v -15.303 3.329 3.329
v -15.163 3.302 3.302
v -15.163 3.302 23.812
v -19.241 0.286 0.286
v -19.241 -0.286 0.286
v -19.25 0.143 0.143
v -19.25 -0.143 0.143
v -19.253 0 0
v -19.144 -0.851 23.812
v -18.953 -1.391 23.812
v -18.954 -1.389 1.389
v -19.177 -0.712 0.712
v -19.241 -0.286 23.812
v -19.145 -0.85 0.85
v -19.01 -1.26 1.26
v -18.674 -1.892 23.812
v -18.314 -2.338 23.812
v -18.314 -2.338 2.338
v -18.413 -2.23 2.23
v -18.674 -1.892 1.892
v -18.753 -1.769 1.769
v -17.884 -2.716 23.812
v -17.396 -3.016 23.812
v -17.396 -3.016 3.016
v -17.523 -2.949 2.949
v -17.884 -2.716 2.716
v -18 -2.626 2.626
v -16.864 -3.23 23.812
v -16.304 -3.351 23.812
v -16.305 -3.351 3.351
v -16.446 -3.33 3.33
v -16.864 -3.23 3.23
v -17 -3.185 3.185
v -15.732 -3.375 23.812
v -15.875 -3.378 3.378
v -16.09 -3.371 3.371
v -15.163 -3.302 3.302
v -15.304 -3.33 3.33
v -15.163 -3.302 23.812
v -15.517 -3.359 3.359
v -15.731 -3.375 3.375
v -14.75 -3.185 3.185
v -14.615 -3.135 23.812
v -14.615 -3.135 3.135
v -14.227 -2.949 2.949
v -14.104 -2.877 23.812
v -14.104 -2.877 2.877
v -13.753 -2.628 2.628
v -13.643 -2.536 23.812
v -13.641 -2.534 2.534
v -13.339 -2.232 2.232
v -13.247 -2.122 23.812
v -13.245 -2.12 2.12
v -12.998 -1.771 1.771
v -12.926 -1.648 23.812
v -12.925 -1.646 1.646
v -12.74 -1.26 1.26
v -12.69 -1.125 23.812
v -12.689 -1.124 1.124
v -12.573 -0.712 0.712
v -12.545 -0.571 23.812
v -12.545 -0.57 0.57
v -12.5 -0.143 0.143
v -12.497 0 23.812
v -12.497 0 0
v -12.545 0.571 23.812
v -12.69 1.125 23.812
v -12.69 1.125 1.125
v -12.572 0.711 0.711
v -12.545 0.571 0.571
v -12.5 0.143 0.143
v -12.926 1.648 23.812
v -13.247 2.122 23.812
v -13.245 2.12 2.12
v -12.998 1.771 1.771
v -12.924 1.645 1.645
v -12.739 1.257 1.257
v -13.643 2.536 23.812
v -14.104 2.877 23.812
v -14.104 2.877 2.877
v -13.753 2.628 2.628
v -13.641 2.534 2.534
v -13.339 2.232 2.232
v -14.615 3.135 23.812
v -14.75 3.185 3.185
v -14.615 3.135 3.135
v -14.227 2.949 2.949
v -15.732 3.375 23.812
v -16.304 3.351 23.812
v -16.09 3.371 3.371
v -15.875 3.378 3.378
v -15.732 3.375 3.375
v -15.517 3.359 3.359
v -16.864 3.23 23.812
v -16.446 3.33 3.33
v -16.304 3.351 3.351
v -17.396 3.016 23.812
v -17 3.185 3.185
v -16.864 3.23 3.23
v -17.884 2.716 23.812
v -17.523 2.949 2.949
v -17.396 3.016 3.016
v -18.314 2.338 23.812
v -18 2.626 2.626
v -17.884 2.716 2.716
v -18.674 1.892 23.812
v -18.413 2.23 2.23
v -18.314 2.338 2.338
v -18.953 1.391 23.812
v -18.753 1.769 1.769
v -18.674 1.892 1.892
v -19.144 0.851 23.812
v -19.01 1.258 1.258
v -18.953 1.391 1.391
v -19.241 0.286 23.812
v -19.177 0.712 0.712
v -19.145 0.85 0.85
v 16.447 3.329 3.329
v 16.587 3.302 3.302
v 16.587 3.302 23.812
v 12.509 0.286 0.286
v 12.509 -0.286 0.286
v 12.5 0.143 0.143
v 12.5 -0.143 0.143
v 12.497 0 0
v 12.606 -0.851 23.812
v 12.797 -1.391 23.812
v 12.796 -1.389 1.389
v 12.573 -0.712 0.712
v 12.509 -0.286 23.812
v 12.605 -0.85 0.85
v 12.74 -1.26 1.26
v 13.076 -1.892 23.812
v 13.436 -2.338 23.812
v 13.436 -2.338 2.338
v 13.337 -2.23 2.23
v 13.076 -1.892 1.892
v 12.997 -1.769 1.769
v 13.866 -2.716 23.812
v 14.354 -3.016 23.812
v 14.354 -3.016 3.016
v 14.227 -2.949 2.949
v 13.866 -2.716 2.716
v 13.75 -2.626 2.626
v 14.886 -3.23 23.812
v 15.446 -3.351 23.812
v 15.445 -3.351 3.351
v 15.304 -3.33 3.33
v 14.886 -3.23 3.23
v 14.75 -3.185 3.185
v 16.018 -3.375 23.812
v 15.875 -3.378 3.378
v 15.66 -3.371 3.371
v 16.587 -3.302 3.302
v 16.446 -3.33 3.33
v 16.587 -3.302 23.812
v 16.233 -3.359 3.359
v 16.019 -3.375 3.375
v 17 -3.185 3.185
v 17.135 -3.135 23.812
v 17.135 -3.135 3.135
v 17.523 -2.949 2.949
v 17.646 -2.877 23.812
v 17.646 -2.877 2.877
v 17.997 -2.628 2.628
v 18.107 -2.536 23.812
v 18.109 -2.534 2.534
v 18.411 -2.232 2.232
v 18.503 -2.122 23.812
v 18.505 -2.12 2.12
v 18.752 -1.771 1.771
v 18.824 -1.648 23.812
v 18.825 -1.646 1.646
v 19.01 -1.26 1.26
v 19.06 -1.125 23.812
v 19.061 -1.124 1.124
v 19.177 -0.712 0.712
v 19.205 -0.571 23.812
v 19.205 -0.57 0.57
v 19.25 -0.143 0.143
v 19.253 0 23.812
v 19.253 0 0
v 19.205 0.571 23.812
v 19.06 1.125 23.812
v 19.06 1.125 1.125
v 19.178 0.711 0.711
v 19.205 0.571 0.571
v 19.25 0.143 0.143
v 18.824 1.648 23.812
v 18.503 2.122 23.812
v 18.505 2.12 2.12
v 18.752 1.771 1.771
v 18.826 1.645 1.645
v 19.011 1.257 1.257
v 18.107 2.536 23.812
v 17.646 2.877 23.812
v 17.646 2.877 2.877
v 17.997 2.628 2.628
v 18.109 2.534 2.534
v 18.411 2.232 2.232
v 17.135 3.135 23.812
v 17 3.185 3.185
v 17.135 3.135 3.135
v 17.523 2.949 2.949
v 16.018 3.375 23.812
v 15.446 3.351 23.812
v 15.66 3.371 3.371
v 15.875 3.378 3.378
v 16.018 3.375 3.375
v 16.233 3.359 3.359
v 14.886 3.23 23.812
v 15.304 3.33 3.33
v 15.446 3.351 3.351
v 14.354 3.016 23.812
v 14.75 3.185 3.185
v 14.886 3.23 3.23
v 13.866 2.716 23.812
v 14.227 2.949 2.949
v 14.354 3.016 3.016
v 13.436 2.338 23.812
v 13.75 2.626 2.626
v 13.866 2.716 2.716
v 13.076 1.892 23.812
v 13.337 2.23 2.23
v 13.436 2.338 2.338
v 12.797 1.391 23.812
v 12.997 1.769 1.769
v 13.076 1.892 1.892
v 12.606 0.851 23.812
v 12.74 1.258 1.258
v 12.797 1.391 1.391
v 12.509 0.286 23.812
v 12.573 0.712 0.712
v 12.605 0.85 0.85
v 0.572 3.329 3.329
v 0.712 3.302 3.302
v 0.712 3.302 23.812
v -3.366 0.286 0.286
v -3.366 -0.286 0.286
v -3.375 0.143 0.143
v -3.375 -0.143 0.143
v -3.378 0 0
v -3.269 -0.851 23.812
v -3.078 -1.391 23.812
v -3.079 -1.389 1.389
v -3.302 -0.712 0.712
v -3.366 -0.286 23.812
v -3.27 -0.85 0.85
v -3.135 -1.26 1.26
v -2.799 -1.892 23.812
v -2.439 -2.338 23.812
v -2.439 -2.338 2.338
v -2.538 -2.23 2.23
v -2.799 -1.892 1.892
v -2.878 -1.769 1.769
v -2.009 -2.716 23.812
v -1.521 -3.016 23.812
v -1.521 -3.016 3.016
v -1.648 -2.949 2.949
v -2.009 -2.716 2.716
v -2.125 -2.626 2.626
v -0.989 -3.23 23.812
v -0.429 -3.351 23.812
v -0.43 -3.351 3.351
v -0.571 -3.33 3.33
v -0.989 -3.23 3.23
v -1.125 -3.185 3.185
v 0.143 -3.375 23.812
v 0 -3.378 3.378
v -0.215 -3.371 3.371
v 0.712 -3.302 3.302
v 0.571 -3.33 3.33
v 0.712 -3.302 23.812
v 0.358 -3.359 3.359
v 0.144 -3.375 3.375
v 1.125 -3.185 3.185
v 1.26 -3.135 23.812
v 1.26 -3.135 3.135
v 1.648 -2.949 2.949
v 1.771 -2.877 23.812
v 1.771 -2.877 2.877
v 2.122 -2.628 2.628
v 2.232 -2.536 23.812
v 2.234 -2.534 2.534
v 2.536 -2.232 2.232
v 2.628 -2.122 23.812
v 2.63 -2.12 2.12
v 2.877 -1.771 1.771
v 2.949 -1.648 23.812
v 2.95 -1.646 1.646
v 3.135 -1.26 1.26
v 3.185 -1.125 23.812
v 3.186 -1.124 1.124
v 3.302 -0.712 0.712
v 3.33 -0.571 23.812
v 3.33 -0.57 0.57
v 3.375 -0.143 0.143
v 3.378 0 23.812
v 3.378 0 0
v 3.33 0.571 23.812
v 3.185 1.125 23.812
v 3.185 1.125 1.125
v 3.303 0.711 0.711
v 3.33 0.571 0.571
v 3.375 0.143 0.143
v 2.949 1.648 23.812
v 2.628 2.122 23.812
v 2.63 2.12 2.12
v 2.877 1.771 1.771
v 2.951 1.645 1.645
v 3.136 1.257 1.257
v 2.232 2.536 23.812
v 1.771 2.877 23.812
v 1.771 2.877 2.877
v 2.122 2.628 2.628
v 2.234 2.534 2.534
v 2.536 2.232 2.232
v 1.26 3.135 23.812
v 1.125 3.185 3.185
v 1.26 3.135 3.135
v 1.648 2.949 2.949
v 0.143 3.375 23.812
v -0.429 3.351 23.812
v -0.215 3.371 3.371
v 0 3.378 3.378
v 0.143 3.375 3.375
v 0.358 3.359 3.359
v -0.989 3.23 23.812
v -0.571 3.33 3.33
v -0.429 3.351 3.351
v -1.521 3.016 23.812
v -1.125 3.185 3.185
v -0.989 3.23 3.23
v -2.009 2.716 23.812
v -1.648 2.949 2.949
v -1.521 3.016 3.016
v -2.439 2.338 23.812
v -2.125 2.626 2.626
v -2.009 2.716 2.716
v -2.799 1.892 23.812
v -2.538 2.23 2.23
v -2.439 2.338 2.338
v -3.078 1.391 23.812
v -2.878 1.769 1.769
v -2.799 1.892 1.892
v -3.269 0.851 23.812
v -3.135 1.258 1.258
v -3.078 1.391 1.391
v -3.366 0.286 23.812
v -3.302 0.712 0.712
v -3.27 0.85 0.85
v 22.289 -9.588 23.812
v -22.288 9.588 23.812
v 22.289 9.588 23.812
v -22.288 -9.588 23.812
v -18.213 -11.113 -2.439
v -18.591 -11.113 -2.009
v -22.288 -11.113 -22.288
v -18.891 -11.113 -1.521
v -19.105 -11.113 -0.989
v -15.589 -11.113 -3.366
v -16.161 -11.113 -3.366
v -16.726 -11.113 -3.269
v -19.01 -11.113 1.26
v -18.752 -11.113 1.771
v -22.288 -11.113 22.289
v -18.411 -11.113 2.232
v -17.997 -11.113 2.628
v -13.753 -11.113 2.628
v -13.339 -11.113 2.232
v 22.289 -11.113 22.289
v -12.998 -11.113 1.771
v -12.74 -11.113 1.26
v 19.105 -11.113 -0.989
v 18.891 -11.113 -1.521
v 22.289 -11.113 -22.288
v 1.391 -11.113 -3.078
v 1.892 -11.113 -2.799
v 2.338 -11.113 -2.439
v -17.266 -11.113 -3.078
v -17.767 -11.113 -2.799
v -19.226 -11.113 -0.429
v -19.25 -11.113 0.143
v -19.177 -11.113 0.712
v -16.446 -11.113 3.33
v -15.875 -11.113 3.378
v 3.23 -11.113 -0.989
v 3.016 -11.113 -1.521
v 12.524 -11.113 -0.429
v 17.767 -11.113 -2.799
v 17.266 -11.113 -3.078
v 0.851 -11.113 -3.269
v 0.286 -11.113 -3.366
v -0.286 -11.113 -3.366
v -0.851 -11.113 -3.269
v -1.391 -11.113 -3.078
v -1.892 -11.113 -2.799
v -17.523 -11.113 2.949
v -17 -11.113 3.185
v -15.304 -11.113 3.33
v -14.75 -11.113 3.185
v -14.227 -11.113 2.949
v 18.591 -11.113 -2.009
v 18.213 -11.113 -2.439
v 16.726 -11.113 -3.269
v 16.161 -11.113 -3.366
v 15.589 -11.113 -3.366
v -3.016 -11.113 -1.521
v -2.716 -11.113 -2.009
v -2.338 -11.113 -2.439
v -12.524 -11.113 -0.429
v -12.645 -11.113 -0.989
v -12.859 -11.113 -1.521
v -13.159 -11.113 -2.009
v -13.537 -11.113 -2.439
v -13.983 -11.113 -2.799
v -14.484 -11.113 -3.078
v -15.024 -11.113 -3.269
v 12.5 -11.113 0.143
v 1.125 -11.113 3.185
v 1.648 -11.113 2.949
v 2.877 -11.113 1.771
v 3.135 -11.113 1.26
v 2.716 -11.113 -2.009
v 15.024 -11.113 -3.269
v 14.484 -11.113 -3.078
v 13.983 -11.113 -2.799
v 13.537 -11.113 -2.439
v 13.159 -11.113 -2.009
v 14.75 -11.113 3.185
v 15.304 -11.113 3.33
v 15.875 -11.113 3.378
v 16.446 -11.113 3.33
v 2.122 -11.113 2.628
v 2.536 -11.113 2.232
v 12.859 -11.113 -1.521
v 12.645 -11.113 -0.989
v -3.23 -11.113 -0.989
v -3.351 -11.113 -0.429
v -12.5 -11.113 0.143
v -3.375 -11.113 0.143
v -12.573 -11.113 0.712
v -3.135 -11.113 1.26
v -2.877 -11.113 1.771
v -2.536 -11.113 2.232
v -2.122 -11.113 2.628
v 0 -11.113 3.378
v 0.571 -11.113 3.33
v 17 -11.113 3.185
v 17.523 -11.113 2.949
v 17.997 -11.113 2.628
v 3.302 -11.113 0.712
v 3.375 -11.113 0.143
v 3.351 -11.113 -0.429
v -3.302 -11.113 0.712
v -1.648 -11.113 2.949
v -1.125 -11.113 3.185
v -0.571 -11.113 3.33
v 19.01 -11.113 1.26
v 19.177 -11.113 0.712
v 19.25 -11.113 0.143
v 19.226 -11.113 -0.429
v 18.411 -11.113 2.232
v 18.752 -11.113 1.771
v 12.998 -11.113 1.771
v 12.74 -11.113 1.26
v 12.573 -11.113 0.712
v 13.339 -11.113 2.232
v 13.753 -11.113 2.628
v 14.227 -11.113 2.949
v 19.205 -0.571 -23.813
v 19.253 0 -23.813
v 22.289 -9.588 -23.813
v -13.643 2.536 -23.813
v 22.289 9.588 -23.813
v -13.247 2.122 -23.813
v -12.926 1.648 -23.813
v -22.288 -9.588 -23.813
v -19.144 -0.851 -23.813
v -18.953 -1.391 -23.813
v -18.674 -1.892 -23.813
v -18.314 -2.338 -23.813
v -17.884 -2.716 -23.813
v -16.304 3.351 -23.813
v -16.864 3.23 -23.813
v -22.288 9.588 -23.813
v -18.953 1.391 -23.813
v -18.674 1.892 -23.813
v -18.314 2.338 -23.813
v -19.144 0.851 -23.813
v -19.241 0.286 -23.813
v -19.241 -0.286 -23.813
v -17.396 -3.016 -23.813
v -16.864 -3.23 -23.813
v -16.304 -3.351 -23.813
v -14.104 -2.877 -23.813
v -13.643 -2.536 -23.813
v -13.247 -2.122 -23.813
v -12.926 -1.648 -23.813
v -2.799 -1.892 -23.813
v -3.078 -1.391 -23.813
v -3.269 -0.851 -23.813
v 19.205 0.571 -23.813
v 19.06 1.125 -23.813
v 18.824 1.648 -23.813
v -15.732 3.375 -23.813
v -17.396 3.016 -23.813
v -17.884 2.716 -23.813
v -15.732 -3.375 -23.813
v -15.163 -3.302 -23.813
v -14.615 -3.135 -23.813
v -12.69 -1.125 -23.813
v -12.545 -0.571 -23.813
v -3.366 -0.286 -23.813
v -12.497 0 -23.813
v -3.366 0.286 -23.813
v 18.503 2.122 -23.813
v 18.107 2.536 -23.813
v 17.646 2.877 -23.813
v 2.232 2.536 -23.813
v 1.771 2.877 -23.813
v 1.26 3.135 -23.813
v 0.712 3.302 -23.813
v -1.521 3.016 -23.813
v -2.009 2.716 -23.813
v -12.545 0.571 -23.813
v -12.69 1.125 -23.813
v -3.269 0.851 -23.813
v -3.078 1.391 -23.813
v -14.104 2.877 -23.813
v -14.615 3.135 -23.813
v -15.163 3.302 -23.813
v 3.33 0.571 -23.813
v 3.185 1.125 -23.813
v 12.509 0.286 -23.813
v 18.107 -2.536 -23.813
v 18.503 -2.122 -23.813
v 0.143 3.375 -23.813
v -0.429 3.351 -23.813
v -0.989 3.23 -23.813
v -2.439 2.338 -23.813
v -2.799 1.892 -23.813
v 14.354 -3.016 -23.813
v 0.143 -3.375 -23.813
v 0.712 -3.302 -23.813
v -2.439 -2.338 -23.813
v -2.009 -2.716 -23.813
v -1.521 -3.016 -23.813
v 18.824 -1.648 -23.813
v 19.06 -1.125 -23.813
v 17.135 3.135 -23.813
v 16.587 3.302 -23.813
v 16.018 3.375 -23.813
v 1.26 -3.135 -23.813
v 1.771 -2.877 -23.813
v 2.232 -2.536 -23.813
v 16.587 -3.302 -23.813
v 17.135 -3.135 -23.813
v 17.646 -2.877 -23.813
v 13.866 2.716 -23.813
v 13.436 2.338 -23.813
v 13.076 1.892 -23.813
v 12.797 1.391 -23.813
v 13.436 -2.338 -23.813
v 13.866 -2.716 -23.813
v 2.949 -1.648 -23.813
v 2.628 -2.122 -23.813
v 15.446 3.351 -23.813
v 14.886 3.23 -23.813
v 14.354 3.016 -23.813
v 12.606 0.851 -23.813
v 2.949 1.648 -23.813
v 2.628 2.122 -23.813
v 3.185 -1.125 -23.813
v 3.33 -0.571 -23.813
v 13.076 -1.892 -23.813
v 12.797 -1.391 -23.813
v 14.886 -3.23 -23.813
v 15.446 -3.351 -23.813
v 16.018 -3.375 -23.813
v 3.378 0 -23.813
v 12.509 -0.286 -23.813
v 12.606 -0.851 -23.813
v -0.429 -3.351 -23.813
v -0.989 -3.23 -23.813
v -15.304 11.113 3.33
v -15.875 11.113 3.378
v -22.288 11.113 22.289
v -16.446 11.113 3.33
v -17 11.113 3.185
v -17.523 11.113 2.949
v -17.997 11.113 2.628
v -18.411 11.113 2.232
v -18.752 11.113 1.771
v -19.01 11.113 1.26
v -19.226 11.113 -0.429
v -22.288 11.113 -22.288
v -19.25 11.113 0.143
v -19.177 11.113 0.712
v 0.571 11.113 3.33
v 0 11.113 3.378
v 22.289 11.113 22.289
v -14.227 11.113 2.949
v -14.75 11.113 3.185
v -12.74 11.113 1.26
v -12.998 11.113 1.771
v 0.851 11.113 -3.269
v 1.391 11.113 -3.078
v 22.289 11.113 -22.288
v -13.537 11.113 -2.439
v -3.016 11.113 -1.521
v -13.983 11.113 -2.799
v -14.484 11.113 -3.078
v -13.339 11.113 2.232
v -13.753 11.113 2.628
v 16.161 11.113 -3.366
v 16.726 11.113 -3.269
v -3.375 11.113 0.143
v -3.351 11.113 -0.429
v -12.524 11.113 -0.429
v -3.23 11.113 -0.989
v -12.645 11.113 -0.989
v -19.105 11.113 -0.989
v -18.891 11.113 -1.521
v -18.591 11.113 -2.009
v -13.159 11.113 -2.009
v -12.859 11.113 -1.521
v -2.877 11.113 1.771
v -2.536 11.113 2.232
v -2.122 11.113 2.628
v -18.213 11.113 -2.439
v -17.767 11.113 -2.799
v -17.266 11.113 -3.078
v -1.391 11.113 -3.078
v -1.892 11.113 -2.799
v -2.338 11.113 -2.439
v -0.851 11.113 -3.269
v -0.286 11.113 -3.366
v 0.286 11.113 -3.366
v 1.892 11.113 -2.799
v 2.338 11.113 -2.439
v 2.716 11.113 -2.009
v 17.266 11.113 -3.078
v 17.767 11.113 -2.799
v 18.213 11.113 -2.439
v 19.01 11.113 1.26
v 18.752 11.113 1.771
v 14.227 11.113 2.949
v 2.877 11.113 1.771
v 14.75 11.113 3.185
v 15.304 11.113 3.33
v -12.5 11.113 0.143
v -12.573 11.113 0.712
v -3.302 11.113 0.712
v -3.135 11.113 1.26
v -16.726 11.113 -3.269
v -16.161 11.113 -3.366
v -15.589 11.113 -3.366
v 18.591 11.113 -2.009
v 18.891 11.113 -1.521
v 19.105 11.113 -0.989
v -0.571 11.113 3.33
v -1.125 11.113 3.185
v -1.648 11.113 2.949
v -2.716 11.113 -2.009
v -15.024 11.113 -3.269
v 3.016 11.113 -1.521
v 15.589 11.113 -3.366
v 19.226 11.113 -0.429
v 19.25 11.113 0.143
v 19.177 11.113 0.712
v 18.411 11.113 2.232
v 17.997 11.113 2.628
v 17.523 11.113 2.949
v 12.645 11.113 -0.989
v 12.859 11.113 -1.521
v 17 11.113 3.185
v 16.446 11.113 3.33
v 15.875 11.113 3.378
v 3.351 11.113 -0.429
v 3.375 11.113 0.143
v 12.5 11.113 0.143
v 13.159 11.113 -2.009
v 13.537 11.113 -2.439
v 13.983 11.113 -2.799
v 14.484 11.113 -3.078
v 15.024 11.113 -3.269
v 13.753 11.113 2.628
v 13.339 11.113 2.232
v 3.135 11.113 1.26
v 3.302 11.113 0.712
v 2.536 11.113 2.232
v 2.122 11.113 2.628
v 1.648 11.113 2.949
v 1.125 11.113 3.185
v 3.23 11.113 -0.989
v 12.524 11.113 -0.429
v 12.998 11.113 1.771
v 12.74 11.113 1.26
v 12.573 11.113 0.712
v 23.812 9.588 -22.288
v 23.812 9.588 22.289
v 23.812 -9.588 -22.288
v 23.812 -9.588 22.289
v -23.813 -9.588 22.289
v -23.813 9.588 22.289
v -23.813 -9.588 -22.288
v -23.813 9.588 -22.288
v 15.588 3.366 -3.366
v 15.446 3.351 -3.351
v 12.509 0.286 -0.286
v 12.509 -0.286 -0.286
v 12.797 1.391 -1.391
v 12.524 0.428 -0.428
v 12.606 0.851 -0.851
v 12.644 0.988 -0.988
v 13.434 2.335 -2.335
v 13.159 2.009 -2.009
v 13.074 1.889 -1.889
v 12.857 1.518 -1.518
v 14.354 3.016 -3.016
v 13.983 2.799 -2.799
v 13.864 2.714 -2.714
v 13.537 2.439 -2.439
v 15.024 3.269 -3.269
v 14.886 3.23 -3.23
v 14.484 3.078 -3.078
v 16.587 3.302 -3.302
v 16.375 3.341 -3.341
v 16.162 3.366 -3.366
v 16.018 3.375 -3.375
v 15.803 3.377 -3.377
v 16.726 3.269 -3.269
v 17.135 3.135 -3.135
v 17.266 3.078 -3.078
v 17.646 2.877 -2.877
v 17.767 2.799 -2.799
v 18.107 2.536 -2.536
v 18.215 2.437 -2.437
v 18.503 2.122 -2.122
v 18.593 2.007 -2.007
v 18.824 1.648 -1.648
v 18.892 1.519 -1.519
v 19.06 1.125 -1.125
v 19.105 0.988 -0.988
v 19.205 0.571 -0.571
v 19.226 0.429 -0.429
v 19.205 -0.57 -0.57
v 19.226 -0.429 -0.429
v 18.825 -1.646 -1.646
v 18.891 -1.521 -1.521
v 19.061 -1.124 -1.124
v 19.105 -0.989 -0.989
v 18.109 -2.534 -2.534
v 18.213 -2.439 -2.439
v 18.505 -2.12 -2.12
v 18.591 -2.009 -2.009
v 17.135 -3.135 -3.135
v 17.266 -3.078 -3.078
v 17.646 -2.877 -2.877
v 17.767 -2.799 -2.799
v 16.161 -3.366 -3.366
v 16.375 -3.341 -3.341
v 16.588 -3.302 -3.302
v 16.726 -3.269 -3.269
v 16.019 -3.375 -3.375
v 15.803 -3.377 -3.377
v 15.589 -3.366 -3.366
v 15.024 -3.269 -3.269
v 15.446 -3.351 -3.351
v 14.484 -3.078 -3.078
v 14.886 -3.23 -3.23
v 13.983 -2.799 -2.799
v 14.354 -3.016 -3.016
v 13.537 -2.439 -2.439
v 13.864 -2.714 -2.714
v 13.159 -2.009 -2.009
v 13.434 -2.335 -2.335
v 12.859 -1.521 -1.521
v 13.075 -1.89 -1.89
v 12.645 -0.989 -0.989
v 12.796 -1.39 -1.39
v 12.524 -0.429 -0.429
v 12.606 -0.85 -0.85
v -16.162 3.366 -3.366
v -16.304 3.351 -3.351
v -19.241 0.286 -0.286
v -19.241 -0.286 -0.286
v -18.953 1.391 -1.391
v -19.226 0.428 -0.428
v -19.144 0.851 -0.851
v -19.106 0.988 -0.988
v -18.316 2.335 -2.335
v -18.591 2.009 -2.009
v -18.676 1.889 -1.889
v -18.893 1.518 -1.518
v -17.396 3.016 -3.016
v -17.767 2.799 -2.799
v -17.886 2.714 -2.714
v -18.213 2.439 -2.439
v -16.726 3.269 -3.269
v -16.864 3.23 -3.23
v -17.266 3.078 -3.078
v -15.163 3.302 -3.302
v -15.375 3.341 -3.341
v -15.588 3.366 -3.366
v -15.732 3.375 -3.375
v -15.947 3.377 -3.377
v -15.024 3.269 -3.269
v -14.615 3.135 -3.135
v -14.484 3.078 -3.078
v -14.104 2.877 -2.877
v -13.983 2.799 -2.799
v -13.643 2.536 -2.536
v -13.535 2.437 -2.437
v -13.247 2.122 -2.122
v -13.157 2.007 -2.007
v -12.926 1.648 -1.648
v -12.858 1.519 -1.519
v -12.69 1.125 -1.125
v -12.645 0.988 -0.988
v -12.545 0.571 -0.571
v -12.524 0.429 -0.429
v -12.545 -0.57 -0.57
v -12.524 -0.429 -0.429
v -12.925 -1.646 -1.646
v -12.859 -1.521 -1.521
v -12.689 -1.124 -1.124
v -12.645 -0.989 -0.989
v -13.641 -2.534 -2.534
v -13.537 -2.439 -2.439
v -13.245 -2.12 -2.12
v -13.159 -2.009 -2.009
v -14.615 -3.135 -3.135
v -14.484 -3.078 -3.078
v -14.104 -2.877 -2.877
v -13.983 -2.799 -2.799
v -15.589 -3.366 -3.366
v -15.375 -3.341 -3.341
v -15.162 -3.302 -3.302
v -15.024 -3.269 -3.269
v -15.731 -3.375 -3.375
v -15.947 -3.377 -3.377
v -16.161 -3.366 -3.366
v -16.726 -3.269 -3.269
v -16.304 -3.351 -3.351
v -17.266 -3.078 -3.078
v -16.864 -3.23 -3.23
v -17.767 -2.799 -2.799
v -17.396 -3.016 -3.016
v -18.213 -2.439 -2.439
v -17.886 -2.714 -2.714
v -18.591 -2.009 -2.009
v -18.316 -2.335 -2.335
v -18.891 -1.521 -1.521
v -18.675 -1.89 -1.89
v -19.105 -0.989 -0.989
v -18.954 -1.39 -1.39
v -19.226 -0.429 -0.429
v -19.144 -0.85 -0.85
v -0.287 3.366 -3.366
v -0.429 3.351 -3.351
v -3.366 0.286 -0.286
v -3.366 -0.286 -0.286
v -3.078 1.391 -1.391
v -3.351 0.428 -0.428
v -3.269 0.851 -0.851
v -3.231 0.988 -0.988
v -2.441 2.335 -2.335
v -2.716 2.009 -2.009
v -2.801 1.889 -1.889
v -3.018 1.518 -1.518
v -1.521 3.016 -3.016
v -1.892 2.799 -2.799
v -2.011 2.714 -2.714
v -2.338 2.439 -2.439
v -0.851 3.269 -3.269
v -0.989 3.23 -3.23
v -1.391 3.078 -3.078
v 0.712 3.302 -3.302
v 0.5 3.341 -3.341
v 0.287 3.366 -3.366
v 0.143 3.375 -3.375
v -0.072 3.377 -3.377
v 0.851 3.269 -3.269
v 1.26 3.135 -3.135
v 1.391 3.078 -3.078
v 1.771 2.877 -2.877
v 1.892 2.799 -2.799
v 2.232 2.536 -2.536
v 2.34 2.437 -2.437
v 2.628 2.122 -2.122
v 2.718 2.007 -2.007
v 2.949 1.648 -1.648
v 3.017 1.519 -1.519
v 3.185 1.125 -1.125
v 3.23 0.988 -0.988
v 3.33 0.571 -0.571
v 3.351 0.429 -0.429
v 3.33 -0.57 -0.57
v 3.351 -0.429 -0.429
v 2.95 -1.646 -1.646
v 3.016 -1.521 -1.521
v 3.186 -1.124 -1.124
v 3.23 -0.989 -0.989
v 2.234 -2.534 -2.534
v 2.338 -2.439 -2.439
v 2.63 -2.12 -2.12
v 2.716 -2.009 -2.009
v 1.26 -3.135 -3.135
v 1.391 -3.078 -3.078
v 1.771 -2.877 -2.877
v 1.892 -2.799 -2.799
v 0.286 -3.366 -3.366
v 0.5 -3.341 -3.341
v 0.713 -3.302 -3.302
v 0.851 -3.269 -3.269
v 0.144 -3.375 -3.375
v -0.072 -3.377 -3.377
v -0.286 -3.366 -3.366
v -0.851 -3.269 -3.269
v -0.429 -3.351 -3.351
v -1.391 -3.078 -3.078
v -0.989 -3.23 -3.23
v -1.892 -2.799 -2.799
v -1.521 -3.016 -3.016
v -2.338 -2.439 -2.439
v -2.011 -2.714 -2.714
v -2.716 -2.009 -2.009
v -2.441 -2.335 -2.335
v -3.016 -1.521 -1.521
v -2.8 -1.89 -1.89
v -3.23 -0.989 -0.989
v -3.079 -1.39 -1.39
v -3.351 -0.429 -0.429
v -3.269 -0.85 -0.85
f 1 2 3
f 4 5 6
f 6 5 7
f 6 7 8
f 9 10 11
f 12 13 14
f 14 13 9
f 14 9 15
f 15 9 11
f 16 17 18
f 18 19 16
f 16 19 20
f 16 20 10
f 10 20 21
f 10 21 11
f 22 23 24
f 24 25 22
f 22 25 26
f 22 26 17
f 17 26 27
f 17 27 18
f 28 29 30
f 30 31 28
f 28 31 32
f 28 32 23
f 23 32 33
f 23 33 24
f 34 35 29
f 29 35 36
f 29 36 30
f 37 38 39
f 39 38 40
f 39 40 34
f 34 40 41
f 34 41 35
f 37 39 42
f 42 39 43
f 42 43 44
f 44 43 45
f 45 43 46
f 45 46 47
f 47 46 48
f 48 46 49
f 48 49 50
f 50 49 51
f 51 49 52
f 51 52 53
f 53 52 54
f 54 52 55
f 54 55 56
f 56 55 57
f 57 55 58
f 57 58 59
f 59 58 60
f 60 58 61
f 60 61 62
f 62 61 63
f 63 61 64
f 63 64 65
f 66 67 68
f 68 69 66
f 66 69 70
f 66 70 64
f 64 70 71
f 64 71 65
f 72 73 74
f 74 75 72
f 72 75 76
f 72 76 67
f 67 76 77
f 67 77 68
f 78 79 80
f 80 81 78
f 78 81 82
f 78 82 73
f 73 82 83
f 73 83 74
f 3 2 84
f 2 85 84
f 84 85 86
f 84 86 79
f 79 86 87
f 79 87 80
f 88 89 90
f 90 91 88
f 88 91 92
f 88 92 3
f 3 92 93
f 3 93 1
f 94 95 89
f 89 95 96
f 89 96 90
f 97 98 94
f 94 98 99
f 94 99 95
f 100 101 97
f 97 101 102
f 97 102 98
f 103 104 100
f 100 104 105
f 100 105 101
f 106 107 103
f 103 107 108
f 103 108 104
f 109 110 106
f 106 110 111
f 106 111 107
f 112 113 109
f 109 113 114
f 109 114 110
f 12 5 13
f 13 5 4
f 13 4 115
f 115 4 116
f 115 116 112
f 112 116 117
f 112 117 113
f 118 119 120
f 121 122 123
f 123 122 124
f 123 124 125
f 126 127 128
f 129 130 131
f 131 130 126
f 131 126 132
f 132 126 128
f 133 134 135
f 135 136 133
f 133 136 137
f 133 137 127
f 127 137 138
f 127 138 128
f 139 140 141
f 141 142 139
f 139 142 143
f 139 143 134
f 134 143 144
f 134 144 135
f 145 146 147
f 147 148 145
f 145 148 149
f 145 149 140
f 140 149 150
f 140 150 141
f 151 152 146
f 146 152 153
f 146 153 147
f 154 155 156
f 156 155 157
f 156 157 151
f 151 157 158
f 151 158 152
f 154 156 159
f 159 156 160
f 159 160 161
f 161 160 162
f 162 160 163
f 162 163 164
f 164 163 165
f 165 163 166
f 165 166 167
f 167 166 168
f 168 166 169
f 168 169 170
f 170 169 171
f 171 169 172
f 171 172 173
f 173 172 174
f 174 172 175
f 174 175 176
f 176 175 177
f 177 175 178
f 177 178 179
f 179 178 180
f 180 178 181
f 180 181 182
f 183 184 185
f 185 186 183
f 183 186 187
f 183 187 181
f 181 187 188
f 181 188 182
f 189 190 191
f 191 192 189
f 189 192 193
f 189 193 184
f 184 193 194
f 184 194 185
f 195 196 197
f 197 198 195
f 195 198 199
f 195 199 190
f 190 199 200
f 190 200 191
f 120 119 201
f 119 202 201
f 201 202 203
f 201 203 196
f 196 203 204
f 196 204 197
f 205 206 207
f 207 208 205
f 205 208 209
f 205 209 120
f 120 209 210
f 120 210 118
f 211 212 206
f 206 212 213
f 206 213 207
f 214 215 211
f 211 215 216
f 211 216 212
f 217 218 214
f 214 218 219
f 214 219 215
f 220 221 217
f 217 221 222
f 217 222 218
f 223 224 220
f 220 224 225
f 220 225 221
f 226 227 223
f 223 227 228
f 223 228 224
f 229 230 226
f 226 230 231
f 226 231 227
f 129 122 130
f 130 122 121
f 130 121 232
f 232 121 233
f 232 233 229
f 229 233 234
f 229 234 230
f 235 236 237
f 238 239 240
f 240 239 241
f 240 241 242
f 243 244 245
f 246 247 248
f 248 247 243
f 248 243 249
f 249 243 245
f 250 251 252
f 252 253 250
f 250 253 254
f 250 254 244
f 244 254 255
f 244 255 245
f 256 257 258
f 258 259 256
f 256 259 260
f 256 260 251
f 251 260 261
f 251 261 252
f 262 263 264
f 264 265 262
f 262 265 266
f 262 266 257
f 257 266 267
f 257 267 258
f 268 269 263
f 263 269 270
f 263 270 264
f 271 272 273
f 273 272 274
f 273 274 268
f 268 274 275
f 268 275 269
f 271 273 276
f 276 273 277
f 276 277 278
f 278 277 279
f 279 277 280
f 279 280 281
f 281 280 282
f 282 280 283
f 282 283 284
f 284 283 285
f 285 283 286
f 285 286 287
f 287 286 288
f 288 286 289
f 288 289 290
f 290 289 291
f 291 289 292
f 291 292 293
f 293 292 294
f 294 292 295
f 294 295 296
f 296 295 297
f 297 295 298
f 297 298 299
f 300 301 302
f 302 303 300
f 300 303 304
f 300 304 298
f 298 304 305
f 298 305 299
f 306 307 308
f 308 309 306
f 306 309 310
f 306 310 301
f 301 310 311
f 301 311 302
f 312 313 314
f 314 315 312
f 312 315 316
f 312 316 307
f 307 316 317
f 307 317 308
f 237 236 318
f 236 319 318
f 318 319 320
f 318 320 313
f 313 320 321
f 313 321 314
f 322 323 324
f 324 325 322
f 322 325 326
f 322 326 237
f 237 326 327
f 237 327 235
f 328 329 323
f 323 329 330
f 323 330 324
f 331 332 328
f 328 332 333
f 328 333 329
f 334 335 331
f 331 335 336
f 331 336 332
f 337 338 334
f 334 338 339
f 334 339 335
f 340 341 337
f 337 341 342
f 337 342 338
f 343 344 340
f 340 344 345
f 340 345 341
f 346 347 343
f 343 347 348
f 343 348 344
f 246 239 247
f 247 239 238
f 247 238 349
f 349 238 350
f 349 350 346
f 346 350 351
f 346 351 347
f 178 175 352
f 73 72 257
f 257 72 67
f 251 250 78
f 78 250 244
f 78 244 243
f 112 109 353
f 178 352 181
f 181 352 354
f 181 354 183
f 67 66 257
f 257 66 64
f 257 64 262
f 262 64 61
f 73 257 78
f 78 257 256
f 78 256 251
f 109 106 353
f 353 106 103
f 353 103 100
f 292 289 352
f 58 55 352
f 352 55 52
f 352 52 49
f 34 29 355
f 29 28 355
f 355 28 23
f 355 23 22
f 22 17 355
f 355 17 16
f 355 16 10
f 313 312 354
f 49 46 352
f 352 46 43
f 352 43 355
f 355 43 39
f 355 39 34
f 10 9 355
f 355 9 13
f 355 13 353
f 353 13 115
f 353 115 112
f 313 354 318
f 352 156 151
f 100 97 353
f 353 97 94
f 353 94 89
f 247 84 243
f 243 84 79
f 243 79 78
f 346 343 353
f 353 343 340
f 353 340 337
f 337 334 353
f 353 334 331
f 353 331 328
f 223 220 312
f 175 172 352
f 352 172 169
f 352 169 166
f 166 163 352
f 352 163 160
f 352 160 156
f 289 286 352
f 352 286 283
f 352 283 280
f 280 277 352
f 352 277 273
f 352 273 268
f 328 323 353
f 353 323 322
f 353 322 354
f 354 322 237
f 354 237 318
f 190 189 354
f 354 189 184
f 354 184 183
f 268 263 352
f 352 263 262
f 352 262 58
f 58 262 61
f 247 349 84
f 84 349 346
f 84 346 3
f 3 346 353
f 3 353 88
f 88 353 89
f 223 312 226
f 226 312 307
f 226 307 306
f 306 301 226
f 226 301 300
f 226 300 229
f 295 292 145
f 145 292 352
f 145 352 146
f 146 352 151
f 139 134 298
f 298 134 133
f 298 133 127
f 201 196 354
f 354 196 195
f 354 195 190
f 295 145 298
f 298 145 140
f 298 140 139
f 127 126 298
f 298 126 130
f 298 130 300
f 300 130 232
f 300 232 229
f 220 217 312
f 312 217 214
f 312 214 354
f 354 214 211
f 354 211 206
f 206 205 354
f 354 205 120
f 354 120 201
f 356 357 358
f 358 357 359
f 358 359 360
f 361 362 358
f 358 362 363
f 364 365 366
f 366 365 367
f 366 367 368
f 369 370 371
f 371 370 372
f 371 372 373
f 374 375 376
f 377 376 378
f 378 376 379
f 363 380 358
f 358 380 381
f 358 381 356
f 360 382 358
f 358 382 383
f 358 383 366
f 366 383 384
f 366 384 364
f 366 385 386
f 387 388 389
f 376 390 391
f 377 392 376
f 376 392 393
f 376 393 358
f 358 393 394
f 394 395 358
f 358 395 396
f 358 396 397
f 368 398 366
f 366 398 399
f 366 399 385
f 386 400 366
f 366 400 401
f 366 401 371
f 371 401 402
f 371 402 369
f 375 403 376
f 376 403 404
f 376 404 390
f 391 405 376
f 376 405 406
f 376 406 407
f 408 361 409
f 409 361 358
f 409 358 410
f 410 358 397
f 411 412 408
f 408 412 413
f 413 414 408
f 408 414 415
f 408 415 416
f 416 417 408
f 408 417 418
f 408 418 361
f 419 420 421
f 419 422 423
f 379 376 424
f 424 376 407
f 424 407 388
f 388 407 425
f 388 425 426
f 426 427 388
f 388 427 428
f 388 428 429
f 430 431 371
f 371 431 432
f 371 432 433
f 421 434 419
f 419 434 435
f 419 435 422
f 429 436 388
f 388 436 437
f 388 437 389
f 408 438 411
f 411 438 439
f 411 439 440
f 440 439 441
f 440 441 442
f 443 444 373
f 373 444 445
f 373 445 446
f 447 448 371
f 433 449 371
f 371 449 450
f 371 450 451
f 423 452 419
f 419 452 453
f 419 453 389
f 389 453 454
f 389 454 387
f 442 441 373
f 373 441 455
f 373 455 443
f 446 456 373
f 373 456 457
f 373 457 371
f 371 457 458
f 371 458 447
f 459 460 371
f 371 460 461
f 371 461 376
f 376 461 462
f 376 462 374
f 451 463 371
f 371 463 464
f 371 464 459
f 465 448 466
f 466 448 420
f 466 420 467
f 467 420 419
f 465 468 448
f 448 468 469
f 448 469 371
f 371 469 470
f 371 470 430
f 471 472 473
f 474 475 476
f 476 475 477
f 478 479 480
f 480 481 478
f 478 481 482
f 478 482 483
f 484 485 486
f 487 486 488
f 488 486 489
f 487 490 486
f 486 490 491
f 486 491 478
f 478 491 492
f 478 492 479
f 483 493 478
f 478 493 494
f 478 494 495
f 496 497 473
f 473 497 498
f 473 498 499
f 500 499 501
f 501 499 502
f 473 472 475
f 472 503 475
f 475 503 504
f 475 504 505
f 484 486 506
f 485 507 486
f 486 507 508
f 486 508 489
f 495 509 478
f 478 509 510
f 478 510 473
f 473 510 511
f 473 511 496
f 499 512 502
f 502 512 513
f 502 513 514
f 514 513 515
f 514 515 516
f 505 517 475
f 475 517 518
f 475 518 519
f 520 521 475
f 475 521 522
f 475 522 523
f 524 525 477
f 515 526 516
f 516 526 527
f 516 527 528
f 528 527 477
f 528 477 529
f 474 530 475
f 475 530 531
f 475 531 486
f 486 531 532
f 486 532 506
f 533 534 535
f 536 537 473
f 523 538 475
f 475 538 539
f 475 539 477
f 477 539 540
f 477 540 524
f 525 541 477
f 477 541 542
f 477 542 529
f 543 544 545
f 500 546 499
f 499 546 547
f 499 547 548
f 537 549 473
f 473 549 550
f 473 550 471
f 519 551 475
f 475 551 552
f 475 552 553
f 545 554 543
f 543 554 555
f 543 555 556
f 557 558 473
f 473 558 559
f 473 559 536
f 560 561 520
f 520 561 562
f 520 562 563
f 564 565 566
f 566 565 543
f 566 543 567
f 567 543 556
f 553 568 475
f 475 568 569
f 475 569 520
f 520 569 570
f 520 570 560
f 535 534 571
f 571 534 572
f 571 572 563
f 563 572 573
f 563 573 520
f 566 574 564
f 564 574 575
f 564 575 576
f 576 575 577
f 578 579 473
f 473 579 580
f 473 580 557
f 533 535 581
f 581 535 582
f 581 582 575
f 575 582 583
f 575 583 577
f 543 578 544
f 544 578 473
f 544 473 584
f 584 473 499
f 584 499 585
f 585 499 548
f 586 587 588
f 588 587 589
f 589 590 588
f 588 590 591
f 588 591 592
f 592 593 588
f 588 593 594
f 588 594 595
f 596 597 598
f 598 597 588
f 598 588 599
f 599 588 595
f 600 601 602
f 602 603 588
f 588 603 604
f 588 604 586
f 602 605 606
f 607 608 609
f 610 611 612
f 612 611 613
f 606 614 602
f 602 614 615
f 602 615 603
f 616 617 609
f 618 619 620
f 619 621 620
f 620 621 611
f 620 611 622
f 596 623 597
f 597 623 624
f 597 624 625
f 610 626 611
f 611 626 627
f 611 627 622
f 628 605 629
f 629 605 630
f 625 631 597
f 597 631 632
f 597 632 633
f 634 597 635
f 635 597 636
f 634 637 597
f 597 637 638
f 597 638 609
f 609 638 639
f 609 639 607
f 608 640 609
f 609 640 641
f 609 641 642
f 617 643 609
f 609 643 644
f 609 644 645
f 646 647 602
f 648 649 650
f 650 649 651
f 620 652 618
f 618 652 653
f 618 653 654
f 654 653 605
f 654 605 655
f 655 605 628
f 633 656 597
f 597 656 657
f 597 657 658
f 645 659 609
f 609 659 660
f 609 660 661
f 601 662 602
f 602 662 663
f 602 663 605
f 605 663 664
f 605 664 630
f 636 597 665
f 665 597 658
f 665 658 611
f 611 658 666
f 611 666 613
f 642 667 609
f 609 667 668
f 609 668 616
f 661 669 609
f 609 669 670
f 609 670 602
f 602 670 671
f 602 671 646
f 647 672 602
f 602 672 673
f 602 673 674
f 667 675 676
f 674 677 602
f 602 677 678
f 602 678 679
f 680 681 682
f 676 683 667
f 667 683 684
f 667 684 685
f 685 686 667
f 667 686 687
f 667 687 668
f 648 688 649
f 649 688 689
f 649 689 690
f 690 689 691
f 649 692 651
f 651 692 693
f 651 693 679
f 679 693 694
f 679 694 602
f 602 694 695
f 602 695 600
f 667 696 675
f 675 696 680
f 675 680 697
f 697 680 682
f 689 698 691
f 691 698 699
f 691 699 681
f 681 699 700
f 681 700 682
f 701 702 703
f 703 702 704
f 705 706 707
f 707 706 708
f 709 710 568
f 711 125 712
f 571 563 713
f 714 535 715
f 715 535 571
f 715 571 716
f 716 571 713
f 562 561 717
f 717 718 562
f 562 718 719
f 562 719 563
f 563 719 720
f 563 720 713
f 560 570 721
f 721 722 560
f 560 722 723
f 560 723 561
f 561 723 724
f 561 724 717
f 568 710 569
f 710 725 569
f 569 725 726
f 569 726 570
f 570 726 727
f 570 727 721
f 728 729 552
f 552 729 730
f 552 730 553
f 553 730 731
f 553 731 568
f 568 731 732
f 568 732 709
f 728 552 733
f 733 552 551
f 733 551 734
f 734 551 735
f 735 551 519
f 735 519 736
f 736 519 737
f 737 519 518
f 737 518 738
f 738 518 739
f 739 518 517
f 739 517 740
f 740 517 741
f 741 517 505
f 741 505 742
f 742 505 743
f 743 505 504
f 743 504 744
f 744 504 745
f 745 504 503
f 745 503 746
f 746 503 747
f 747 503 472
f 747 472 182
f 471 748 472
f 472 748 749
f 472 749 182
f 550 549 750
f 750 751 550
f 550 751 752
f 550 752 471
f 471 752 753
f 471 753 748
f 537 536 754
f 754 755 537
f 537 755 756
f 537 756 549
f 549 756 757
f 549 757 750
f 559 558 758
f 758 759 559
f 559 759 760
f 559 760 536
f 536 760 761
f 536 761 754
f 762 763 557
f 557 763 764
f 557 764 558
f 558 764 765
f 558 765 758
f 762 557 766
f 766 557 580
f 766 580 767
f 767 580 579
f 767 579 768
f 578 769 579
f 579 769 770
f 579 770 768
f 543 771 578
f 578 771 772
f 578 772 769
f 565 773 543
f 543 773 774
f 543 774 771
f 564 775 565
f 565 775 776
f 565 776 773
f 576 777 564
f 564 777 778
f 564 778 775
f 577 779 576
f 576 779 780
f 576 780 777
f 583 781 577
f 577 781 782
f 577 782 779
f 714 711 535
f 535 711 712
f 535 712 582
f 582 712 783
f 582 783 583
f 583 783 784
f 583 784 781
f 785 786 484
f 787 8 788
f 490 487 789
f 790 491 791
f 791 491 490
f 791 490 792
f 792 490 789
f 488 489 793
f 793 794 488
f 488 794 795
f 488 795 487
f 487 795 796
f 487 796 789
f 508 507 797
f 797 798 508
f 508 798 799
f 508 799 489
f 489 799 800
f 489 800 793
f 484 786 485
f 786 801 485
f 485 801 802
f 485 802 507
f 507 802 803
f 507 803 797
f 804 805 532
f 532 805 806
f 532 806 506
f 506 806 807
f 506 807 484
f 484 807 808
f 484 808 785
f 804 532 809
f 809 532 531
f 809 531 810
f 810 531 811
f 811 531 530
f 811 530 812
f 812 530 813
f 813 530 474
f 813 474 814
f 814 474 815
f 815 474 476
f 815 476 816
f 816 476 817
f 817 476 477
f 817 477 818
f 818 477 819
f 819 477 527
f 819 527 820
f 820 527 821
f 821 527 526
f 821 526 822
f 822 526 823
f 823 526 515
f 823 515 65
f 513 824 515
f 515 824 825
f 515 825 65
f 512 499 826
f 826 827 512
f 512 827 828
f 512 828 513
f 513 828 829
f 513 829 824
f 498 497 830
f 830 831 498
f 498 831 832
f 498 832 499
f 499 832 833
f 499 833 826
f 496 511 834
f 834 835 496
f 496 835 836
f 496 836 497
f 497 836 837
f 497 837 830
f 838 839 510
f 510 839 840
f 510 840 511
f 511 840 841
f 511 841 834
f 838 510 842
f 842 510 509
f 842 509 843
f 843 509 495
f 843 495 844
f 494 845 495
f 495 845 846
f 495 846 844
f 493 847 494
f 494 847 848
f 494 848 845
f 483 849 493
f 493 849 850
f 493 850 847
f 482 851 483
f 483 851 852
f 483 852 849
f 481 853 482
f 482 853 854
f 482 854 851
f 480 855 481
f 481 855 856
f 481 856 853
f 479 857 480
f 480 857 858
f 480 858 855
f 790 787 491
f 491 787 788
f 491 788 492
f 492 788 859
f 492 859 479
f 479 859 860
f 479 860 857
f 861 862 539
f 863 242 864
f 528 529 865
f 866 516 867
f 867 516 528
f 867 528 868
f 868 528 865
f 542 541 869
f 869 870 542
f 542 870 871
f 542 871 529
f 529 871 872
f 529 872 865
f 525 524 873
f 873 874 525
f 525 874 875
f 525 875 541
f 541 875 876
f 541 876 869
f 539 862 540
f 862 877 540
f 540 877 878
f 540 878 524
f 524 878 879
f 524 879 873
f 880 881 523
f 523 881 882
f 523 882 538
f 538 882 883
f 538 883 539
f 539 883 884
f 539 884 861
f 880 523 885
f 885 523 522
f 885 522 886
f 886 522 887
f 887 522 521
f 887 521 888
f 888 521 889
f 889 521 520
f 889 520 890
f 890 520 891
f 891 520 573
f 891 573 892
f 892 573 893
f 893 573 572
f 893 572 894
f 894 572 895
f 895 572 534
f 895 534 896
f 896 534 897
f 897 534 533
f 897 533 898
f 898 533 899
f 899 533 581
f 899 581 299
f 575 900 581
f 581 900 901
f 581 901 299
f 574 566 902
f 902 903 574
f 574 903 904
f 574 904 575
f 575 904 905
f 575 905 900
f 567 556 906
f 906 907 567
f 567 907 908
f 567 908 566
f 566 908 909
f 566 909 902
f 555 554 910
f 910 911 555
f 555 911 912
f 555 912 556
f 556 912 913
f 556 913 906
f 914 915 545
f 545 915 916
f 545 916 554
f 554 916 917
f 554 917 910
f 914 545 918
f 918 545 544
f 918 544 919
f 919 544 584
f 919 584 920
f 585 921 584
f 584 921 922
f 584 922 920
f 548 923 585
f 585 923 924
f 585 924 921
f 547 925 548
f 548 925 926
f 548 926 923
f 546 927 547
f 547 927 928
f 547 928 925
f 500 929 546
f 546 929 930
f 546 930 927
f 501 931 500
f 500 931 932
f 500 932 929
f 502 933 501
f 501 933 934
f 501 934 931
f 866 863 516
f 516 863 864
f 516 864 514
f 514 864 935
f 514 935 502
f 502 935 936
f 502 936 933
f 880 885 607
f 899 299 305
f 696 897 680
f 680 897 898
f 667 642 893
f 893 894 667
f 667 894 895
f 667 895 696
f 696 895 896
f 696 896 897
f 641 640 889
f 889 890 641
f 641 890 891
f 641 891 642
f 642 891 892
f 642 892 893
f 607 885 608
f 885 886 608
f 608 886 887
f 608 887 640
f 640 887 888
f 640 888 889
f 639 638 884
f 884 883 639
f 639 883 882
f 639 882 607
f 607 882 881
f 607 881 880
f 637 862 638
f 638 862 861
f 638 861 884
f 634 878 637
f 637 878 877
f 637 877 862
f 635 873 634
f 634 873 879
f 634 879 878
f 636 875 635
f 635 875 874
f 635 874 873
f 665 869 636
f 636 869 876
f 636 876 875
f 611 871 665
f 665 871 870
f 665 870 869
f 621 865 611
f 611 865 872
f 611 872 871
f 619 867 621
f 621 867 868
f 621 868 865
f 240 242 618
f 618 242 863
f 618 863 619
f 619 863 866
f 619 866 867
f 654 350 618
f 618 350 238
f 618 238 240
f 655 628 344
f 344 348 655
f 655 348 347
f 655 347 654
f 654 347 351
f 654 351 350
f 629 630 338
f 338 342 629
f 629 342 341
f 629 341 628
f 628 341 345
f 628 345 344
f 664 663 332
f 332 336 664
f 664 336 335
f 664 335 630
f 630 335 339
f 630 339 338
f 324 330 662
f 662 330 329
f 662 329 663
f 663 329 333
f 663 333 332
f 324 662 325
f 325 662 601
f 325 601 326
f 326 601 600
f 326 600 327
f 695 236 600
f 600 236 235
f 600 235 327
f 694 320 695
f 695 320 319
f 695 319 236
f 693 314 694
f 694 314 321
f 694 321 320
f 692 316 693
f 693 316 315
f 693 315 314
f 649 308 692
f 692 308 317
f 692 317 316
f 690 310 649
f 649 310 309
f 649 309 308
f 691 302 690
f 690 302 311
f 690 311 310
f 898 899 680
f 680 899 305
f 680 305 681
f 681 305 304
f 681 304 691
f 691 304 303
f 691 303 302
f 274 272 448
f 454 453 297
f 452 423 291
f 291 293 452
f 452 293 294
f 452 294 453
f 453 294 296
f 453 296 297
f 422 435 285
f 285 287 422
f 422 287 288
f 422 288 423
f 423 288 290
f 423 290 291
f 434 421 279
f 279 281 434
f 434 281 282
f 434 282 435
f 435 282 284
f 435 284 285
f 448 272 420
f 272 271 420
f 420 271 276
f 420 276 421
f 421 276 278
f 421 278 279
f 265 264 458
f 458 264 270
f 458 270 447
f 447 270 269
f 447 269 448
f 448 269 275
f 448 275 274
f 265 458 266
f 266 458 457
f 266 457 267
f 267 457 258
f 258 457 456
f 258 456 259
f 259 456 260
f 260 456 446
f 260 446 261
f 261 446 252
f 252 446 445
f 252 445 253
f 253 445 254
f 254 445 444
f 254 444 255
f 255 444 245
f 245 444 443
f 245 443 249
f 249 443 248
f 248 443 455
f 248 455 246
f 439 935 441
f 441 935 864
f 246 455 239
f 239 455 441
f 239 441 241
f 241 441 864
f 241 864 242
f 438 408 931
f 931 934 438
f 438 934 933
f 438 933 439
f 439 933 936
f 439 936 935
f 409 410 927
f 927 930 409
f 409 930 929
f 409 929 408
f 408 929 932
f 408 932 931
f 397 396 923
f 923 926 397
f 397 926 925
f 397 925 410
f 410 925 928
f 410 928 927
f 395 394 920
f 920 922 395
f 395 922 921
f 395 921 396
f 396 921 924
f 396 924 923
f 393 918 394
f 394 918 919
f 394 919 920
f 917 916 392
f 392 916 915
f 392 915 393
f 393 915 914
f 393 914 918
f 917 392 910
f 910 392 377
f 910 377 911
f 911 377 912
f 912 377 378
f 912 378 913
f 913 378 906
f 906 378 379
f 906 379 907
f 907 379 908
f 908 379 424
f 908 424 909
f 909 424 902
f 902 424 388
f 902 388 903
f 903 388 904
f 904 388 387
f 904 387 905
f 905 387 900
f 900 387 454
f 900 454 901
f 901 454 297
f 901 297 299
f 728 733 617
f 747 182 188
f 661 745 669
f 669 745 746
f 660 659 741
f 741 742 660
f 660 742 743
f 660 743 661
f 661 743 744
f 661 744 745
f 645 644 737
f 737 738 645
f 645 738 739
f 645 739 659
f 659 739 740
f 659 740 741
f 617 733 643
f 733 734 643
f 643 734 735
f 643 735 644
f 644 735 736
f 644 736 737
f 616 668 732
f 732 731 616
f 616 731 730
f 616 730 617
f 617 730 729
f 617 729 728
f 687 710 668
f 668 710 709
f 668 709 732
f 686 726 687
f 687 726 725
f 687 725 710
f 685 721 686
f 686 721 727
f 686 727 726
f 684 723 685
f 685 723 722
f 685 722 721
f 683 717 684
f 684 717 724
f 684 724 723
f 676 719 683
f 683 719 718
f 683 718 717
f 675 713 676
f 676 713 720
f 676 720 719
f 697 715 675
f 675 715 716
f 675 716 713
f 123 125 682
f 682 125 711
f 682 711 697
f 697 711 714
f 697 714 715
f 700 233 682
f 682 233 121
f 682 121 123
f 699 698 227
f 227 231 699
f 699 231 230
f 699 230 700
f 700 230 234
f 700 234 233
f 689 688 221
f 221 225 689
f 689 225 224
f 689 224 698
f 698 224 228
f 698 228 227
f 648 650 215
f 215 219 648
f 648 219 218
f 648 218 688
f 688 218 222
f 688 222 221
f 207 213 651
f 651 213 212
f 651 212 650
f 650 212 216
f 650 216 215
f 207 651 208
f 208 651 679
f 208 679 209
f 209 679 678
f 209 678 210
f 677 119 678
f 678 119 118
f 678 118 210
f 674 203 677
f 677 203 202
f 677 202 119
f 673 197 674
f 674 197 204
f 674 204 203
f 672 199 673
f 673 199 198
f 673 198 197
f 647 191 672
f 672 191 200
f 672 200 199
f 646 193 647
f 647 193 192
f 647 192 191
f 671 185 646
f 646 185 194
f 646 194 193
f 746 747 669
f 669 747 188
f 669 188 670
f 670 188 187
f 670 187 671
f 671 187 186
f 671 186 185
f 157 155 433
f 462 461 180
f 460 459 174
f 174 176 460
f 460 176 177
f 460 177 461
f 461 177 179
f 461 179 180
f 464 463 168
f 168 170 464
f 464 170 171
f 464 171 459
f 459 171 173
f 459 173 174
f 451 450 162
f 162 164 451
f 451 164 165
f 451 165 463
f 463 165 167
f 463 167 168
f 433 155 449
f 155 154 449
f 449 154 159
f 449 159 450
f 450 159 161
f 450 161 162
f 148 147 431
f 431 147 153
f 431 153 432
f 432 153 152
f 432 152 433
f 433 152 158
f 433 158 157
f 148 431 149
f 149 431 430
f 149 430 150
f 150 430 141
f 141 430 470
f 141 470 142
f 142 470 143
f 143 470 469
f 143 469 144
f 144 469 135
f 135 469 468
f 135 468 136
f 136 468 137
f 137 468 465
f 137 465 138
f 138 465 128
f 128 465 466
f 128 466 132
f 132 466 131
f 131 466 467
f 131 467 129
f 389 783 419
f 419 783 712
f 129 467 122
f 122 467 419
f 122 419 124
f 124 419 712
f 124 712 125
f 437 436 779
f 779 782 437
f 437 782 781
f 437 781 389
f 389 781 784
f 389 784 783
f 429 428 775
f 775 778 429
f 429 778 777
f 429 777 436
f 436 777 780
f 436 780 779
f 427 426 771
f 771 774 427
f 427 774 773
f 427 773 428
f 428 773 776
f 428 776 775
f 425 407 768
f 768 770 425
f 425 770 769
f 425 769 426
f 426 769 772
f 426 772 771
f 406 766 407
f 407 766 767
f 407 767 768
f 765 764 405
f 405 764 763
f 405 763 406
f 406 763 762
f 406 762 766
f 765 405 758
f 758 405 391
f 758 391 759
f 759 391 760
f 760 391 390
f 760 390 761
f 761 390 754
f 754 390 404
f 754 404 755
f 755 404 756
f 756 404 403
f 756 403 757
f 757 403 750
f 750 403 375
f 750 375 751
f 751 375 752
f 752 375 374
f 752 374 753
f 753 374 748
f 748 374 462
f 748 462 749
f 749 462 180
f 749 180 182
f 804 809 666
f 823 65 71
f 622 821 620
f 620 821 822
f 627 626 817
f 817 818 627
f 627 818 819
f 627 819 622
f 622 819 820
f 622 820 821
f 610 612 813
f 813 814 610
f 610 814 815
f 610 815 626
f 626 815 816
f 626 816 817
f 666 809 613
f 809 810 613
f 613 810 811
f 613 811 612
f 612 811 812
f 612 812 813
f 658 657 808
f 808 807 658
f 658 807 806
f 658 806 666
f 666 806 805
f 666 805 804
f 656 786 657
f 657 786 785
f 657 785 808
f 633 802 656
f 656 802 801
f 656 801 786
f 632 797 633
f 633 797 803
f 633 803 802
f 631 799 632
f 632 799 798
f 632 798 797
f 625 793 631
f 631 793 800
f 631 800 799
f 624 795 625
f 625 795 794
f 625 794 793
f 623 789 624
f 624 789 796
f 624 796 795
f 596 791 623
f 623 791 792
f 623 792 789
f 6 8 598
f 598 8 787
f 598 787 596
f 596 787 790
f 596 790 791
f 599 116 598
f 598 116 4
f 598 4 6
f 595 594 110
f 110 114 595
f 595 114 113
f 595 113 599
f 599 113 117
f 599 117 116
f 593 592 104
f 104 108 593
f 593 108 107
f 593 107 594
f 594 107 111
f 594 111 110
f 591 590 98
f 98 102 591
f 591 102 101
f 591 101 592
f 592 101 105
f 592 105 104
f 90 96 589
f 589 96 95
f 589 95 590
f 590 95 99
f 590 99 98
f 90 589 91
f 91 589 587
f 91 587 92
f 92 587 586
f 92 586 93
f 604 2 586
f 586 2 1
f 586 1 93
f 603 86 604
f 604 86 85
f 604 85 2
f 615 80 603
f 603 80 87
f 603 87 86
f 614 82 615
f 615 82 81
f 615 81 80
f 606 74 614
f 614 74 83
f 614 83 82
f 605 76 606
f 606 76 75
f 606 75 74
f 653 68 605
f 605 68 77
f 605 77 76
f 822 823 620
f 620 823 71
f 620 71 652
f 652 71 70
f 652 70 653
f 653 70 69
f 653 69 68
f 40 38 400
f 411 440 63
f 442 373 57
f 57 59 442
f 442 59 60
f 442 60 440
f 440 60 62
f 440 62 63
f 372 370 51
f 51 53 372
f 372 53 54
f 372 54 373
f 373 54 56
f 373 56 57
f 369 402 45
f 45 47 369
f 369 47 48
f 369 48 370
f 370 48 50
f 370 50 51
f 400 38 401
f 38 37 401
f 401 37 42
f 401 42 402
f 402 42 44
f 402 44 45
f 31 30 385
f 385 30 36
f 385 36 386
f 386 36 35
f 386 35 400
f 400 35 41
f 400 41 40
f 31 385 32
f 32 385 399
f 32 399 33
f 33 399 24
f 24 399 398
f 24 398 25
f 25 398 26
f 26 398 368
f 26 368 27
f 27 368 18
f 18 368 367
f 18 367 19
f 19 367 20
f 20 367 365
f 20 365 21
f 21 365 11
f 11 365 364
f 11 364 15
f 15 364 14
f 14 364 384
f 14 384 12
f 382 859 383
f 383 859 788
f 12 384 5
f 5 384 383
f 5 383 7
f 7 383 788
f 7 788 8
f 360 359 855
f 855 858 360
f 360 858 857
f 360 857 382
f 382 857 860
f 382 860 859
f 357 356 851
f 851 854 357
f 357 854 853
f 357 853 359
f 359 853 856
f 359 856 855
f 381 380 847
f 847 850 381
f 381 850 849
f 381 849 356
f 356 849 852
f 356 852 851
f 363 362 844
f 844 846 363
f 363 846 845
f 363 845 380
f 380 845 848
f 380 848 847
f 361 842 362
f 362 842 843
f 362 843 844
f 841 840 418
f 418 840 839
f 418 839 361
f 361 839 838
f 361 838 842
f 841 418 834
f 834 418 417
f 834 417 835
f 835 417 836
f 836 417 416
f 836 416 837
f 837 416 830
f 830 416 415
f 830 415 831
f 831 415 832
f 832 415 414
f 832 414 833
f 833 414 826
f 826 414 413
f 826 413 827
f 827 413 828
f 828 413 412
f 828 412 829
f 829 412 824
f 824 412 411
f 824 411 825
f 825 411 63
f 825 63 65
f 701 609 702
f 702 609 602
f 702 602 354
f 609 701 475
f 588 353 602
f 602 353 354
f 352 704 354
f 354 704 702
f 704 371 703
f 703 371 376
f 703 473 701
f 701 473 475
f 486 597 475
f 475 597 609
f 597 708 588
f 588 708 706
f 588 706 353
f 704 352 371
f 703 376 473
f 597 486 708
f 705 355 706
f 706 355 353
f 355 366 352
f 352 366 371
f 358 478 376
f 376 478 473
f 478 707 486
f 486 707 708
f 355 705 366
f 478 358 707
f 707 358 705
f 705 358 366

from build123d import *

# Parameters (mm, degrees)
SKETCH1_W               = 47.625
SKETCH1_H               = 22.225
BOSS_EXTRUDE1_DEPTH     = 23.8125
F_1_4_CLEARANCE_HOLE1_D = 6.7564
F_1_4_CLEARANCE_HOLE2_D = 6.7564
CHAMFER1_SIZE           = 1.524


with BuildPart() as part:
    # Sketch1 → Boss-Extrude1 (new, symmetric)
    with BuildSketch(Plane(origin=(0, 0, 0), x_dir=(0, 0, -1), z_dir=(1, 0, 0))):
        Rectangle(SKETCH1_W, SKETCH1_H)
    extrude(amount=BOSS_EXTRUDE1_DEPTH, both=True)

    # 1/4 Clearance Hole1 (through all)
    with Locations(Plane.XY.offset(23.8125)):
        with Locations((0, 0), (-15.875, 0), (15.875, 0)):
            Hole(F_1_4_CLEARANCE_HOLE1_D / 2)

    # 1/4 Clearance Hole2 (through all)
    with Locations(Plane(origin=(0, 11.1125, 0), x_dir=(1, 0, 0), z_dir=(0, 1, 0))):
        with Locations((-15.875, 0), (15.875, 0), (0, 0)):
            Hole(F_1_4_CLEARANCE_HOLE2_D / 2)

    # Chamfer1
    chamfer1_edges = [part.edges().sort_by_distance(p)[0] for p in [
        (23.8125, 0, -23.8125),
        (23.8125, 11.1125, 0),
        (23.8125, 0, 23.8125),
        (-23.8125, 11.1125, 0),
        (-23.8125, 0, -23.8125),
        (-23.8125, -11.1125, 0),
        (-23.8125, 0, 23.8125),
        (0, 11.1125, 23.8125),
        (0, 11.1125, -23.8125),
        (0, -11.1125, -23.8125),
        (0, -11.1125, 23.8125),
        (23.8125, -11.1125, 0),
    ]]
    chamfer(chamfer1_edges, length=CHAMFER1_SIZE)


solid = part.part
